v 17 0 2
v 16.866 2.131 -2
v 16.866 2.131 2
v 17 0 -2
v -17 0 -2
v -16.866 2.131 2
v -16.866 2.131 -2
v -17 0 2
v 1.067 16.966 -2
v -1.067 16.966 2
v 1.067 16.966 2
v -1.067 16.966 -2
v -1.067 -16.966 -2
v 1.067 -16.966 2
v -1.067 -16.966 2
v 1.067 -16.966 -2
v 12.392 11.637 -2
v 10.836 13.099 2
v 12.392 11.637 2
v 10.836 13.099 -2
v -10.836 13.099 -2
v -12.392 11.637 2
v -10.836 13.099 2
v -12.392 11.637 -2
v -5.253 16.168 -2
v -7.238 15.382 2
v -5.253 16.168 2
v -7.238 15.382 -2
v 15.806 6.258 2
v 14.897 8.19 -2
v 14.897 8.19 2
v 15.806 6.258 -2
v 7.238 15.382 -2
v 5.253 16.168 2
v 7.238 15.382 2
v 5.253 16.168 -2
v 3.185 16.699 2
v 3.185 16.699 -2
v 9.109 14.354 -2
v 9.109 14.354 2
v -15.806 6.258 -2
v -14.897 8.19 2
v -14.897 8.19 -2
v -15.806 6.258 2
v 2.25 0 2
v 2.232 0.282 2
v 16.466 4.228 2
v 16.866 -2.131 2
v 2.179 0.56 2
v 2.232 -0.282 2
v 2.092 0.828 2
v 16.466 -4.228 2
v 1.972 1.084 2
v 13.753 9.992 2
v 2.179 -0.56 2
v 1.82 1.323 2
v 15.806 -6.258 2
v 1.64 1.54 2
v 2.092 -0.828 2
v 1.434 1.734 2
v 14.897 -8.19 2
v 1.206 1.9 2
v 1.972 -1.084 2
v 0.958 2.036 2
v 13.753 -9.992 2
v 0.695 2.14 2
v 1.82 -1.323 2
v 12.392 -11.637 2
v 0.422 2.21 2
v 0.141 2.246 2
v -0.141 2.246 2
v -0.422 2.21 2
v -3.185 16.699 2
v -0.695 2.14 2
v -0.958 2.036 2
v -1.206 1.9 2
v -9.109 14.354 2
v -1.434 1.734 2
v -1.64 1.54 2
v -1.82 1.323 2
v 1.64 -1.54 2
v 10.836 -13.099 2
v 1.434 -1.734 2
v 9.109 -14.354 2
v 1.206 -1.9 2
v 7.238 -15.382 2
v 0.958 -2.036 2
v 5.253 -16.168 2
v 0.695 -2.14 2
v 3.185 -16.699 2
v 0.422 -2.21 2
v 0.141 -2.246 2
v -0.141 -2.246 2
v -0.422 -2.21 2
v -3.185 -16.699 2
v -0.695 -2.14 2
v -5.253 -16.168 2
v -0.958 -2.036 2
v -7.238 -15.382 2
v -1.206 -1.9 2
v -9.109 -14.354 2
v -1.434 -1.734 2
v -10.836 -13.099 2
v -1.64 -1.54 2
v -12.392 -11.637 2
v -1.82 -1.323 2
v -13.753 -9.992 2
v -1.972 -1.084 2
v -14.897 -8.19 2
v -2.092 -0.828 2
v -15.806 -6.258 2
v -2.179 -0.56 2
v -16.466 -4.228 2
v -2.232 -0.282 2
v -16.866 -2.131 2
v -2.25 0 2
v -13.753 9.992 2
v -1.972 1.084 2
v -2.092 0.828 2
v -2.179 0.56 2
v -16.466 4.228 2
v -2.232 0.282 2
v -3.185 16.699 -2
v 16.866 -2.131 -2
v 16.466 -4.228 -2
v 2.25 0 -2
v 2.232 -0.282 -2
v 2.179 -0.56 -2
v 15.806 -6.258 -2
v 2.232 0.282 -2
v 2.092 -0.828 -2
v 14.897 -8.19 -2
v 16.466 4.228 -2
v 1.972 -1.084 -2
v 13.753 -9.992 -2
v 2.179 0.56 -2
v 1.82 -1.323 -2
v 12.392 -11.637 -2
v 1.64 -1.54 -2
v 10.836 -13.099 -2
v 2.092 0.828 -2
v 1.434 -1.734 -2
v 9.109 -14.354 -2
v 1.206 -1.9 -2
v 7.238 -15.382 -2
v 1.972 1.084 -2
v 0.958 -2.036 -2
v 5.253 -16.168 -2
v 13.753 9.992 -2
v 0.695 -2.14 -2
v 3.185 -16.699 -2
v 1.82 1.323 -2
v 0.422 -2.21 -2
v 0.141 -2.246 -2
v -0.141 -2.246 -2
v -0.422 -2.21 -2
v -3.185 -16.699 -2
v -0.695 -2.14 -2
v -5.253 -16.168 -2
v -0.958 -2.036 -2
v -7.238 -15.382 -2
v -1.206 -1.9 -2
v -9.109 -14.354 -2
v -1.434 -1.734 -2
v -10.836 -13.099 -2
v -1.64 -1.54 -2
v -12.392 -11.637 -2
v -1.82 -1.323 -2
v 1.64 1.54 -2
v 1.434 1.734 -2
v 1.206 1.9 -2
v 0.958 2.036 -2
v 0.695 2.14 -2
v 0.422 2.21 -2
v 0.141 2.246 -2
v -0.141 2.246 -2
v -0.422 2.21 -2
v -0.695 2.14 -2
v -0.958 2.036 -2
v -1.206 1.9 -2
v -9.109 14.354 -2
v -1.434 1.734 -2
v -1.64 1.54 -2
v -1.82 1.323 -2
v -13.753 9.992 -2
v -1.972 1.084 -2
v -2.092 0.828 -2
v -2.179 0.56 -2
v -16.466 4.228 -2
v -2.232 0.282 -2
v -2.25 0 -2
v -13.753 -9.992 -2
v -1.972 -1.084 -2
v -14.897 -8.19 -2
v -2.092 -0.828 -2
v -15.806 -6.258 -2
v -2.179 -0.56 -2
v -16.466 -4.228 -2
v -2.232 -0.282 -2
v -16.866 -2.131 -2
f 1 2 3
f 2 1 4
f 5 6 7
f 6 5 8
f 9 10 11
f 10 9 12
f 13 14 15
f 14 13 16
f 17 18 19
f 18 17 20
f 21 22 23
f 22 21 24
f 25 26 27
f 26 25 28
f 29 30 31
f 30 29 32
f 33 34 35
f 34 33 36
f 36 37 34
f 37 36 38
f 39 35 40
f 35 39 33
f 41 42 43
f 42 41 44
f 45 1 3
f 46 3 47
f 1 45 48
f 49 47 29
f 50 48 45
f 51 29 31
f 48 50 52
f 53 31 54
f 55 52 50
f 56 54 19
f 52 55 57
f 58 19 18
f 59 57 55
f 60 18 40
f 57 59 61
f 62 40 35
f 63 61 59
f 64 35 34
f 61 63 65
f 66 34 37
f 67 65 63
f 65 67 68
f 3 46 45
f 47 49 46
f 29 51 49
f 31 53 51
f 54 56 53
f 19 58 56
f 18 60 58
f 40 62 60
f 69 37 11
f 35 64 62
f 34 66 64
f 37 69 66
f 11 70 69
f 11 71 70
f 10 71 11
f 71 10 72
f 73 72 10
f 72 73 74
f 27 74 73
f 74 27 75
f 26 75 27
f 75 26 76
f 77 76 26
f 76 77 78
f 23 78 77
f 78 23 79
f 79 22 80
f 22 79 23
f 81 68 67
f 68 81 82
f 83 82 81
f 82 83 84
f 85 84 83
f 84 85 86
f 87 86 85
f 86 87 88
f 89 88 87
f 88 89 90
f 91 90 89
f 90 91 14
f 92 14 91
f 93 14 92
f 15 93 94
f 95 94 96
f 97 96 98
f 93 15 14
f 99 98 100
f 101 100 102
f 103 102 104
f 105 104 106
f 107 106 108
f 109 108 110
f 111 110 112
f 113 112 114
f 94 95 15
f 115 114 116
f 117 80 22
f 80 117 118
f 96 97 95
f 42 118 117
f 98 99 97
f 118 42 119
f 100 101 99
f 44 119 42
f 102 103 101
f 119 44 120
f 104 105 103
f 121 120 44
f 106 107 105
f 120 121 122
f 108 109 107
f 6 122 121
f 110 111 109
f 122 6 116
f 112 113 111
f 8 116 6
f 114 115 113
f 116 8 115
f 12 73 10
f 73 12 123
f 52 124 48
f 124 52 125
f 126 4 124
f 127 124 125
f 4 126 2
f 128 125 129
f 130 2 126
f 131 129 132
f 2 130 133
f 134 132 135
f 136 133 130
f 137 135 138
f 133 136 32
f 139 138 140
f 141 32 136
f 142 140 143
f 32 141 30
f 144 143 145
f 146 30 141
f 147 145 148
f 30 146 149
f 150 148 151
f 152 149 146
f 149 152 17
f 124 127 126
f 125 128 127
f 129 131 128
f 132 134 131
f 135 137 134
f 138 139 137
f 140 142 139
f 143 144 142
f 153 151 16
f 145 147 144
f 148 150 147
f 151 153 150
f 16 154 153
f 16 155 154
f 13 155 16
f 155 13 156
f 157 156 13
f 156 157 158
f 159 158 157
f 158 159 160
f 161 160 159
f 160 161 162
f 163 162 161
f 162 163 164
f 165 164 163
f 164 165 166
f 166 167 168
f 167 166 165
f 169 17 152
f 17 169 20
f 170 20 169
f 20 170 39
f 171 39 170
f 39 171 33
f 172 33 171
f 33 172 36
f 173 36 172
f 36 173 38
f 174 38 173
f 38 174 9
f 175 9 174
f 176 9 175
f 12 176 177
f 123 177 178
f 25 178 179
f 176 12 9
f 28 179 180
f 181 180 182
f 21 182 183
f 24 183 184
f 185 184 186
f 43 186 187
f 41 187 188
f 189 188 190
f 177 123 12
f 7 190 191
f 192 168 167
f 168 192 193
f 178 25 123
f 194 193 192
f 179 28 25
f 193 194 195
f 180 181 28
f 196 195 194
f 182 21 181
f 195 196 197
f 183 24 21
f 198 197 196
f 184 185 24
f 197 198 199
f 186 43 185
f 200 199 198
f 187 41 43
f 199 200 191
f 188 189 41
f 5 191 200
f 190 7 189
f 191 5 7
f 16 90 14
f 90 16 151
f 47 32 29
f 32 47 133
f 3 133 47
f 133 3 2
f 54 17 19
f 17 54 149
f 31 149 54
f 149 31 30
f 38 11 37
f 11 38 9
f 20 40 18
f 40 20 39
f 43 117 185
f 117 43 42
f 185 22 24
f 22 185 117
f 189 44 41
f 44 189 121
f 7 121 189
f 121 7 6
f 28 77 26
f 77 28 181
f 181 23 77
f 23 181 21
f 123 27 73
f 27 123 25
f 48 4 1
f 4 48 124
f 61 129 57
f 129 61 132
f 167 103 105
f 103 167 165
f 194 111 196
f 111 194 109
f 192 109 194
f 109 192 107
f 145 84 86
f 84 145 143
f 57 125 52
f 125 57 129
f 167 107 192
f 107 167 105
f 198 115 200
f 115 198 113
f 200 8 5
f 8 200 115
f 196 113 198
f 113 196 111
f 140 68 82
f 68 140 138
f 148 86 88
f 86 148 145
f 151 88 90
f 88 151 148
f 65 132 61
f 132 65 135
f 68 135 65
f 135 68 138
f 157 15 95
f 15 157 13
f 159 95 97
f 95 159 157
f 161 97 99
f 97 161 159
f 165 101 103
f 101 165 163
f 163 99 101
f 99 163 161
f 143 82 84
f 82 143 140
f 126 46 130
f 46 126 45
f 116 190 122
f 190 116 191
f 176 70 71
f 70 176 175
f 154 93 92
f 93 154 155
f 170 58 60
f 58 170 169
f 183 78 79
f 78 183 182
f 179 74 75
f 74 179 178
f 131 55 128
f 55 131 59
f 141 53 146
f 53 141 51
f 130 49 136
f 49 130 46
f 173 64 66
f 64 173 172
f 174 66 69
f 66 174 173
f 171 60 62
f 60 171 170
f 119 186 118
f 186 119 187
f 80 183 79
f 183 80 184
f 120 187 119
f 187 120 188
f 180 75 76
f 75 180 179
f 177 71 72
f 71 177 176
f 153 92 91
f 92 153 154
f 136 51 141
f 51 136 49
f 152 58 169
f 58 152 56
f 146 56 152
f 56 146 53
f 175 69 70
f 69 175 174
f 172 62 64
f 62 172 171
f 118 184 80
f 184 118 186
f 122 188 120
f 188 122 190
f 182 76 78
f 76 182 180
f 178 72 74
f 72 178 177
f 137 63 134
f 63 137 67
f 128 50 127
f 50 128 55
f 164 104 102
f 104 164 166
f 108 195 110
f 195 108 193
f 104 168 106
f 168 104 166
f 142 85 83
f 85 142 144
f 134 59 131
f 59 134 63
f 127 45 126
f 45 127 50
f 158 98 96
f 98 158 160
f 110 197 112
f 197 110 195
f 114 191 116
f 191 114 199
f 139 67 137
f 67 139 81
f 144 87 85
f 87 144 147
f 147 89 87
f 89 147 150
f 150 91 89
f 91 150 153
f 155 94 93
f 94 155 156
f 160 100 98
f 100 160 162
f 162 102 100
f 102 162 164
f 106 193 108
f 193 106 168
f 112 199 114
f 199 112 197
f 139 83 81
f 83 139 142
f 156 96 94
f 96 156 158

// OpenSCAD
$fn = 50;


difference() {
	union() {
		translate(v = [0, 0, -2.0000000000]) {
			cylinder(h = 4, r = 17.0000000000);
		}
	}
	union() {
		translate(v = [0, 0, -100.0000000000]) {
			cylinder(h = 200, r = 2.2500000000);
		}
	}
}
